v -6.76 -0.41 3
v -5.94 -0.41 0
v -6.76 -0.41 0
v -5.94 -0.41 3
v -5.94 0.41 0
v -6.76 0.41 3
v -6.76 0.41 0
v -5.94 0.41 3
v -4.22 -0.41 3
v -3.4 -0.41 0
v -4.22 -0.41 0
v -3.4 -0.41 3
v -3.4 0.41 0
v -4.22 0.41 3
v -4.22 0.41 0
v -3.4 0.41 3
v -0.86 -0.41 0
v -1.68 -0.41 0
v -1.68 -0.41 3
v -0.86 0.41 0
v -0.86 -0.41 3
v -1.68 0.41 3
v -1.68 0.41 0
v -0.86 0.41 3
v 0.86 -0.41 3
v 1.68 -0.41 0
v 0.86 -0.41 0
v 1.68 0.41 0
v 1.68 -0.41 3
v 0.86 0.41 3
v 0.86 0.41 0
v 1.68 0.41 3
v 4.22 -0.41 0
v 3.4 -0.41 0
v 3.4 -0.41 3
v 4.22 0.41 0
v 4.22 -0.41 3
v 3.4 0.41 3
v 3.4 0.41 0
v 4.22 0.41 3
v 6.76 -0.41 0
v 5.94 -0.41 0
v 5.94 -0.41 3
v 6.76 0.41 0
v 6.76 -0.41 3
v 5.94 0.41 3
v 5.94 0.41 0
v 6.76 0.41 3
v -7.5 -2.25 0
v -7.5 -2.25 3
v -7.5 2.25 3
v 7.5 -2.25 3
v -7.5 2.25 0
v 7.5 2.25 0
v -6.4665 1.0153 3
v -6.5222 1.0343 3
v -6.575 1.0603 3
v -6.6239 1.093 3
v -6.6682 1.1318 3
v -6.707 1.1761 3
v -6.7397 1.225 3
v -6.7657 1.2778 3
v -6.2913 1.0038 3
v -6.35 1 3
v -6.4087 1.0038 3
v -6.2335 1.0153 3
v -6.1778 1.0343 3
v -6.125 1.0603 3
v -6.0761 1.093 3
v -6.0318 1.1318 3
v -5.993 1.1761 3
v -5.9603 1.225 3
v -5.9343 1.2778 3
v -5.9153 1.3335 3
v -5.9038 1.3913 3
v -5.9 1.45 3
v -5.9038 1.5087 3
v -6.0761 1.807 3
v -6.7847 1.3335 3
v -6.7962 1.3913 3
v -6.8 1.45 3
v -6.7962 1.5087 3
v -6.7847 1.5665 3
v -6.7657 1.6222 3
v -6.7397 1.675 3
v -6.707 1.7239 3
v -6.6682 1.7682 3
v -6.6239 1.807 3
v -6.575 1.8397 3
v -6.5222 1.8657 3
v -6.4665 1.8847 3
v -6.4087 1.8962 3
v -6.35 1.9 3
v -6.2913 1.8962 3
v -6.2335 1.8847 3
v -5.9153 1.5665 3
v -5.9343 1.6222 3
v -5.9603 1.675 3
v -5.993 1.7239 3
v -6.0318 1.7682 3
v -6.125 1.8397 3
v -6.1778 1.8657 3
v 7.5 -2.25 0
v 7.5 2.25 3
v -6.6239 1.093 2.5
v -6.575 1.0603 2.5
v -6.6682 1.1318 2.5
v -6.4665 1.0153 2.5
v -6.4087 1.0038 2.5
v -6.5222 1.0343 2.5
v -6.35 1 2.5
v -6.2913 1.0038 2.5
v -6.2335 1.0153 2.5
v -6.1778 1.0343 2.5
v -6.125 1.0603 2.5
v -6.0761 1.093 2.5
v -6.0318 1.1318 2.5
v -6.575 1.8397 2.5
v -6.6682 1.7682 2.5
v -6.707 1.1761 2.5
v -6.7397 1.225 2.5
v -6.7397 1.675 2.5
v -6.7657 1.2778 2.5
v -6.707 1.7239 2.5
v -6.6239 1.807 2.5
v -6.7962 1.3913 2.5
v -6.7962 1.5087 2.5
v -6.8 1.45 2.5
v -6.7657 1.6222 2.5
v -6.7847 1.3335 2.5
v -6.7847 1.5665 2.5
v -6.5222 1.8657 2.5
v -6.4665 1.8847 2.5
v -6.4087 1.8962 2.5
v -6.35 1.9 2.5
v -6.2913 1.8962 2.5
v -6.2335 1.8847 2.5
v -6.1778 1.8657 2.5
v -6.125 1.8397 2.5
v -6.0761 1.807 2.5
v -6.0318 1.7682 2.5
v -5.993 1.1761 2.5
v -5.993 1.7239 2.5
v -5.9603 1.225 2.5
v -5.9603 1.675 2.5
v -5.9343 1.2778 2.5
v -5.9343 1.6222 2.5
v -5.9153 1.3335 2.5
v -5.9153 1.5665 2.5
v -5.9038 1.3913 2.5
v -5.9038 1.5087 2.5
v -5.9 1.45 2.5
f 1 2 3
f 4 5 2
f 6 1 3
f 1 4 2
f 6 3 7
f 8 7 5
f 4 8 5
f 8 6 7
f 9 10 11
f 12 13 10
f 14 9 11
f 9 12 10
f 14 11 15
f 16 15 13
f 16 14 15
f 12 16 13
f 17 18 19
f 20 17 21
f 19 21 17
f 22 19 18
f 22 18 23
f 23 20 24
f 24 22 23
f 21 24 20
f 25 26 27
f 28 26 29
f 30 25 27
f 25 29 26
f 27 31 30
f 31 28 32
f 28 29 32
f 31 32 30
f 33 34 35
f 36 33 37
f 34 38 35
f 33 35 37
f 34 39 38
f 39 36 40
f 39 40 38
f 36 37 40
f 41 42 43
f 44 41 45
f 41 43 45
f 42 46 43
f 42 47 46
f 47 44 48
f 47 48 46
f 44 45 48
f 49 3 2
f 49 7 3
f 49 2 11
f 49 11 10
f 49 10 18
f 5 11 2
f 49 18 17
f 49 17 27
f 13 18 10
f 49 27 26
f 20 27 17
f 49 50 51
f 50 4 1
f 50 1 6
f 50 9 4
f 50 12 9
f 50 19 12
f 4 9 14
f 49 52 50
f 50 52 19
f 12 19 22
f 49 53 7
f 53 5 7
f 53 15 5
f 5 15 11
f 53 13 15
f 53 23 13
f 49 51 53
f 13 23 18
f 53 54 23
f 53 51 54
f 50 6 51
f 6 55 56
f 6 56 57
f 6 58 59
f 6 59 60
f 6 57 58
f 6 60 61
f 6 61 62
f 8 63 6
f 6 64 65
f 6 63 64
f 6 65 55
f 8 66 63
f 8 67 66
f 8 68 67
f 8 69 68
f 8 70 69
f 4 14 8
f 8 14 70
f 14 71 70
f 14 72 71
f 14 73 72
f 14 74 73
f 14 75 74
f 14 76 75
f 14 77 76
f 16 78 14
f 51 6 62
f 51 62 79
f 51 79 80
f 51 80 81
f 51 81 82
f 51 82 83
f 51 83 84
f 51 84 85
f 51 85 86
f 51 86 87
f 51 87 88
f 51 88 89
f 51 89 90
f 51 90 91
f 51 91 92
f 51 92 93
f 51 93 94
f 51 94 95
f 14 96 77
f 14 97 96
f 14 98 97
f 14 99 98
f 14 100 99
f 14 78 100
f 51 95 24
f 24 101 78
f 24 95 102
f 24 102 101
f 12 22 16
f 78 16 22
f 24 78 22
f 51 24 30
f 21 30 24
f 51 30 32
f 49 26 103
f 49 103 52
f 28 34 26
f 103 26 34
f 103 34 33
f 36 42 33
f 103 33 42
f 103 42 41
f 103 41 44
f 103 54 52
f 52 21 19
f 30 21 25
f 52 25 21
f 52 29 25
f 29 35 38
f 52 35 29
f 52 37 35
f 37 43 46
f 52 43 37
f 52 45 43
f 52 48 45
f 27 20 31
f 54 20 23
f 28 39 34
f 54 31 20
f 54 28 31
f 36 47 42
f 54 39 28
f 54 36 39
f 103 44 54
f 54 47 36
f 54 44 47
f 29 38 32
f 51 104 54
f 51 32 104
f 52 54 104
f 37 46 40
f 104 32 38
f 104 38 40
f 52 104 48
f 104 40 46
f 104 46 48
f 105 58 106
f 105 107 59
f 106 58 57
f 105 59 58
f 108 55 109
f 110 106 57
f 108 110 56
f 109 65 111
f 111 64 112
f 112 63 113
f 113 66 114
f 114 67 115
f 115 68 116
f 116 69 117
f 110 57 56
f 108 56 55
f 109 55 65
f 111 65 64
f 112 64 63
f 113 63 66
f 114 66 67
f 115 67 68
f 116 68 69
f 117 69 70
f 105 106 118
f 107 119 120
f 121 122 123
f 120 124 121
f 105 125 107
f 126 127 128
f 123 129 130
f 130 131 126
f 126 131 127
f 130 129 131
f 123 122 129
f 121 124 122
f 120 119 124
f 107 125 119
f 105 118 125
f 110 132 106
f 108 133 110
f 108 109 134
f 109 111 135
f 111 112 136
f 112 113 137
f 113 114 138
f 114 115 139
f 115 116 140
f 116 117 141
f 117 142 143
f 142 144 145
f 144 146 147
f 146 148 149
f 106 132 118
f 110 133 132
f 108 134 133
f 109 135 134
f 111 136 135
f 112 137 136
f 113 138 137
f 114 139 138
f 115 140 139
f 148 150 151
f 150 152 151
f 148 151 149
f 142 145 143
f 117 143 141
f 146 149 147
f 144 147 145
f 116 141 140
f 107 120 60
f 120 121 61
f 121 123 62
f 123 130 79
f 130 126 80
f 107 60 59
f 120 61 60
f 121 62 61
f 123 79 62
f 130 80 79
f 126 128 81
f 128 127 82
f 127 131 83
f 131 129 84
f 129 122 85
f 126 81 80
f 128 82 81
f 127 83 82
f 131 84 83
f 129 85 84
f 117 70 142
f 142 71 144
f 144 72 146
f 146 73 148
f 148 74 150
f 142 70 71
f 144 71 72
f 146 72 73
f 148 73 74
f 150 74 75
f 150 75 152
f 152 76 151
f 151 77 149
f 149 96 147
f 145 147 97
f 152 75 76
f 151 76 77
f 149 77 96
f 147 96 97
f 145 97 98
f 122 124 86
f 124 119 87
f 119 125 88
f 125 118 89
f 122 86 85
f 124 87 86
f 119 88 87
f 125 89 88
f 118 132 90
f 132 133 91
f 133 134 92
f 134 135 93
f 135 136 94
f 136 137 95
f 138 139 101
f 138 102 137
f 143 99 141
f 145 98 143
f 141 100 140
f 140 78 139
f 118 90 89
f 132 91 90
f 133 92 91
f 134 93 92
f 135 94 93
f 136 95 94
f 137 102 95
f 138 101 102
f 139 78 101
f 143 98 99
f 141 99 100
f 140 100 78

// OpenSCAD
// First printable spacing gauge for a 1x6 motor-side male-pin connector.
// FIT CHECK ONLY: do not wire or power a motor through this part.
// Units: mm. Pin size, contact depth and socket envelope are not measured.

$fn = 48;

positions = 6;
pitch = 2.54;
body_length = 15.0;
body_width = 4.5;       // provisional; measure motor socket before plug design
body_thickness = 3.0;
square_pin_side = 0.64; // provisional individual metal pin cross-section
hole_clearance = 0.18; // total clearance across the square
pin1_mark_d = 0.9;
pin1_mark_depth = 0.5;

assert((positions-1)*pitch < body_length,
       "Contact pitch exceeds overall body length");
assert(square_pin_side + hole_clearance > 0);

difference() {
    translate([-body_length/2, -body_width/2, 0])
        cube([body_length, body_width, body_thickness]);

    for (i = [0:positions-1]) {
        x = (i-(positions-1)/2)*pitch;
        translate([x, 0, -0.02])
            linear_extrude(height=body_thickness+0.04)
                square(square_pin_side+hole_clearance, center=true);
    }

    // Recessed dot beside contact 1. It is an orientation mark, not a key.
    translate([-(positions-1)*pitch/2, body_width/2-0.8,
               body_thickness-pin1_mark_depth])
        cylinder(d=pin1_mark_d, h=pin1_mark_depth+0.02);
}
